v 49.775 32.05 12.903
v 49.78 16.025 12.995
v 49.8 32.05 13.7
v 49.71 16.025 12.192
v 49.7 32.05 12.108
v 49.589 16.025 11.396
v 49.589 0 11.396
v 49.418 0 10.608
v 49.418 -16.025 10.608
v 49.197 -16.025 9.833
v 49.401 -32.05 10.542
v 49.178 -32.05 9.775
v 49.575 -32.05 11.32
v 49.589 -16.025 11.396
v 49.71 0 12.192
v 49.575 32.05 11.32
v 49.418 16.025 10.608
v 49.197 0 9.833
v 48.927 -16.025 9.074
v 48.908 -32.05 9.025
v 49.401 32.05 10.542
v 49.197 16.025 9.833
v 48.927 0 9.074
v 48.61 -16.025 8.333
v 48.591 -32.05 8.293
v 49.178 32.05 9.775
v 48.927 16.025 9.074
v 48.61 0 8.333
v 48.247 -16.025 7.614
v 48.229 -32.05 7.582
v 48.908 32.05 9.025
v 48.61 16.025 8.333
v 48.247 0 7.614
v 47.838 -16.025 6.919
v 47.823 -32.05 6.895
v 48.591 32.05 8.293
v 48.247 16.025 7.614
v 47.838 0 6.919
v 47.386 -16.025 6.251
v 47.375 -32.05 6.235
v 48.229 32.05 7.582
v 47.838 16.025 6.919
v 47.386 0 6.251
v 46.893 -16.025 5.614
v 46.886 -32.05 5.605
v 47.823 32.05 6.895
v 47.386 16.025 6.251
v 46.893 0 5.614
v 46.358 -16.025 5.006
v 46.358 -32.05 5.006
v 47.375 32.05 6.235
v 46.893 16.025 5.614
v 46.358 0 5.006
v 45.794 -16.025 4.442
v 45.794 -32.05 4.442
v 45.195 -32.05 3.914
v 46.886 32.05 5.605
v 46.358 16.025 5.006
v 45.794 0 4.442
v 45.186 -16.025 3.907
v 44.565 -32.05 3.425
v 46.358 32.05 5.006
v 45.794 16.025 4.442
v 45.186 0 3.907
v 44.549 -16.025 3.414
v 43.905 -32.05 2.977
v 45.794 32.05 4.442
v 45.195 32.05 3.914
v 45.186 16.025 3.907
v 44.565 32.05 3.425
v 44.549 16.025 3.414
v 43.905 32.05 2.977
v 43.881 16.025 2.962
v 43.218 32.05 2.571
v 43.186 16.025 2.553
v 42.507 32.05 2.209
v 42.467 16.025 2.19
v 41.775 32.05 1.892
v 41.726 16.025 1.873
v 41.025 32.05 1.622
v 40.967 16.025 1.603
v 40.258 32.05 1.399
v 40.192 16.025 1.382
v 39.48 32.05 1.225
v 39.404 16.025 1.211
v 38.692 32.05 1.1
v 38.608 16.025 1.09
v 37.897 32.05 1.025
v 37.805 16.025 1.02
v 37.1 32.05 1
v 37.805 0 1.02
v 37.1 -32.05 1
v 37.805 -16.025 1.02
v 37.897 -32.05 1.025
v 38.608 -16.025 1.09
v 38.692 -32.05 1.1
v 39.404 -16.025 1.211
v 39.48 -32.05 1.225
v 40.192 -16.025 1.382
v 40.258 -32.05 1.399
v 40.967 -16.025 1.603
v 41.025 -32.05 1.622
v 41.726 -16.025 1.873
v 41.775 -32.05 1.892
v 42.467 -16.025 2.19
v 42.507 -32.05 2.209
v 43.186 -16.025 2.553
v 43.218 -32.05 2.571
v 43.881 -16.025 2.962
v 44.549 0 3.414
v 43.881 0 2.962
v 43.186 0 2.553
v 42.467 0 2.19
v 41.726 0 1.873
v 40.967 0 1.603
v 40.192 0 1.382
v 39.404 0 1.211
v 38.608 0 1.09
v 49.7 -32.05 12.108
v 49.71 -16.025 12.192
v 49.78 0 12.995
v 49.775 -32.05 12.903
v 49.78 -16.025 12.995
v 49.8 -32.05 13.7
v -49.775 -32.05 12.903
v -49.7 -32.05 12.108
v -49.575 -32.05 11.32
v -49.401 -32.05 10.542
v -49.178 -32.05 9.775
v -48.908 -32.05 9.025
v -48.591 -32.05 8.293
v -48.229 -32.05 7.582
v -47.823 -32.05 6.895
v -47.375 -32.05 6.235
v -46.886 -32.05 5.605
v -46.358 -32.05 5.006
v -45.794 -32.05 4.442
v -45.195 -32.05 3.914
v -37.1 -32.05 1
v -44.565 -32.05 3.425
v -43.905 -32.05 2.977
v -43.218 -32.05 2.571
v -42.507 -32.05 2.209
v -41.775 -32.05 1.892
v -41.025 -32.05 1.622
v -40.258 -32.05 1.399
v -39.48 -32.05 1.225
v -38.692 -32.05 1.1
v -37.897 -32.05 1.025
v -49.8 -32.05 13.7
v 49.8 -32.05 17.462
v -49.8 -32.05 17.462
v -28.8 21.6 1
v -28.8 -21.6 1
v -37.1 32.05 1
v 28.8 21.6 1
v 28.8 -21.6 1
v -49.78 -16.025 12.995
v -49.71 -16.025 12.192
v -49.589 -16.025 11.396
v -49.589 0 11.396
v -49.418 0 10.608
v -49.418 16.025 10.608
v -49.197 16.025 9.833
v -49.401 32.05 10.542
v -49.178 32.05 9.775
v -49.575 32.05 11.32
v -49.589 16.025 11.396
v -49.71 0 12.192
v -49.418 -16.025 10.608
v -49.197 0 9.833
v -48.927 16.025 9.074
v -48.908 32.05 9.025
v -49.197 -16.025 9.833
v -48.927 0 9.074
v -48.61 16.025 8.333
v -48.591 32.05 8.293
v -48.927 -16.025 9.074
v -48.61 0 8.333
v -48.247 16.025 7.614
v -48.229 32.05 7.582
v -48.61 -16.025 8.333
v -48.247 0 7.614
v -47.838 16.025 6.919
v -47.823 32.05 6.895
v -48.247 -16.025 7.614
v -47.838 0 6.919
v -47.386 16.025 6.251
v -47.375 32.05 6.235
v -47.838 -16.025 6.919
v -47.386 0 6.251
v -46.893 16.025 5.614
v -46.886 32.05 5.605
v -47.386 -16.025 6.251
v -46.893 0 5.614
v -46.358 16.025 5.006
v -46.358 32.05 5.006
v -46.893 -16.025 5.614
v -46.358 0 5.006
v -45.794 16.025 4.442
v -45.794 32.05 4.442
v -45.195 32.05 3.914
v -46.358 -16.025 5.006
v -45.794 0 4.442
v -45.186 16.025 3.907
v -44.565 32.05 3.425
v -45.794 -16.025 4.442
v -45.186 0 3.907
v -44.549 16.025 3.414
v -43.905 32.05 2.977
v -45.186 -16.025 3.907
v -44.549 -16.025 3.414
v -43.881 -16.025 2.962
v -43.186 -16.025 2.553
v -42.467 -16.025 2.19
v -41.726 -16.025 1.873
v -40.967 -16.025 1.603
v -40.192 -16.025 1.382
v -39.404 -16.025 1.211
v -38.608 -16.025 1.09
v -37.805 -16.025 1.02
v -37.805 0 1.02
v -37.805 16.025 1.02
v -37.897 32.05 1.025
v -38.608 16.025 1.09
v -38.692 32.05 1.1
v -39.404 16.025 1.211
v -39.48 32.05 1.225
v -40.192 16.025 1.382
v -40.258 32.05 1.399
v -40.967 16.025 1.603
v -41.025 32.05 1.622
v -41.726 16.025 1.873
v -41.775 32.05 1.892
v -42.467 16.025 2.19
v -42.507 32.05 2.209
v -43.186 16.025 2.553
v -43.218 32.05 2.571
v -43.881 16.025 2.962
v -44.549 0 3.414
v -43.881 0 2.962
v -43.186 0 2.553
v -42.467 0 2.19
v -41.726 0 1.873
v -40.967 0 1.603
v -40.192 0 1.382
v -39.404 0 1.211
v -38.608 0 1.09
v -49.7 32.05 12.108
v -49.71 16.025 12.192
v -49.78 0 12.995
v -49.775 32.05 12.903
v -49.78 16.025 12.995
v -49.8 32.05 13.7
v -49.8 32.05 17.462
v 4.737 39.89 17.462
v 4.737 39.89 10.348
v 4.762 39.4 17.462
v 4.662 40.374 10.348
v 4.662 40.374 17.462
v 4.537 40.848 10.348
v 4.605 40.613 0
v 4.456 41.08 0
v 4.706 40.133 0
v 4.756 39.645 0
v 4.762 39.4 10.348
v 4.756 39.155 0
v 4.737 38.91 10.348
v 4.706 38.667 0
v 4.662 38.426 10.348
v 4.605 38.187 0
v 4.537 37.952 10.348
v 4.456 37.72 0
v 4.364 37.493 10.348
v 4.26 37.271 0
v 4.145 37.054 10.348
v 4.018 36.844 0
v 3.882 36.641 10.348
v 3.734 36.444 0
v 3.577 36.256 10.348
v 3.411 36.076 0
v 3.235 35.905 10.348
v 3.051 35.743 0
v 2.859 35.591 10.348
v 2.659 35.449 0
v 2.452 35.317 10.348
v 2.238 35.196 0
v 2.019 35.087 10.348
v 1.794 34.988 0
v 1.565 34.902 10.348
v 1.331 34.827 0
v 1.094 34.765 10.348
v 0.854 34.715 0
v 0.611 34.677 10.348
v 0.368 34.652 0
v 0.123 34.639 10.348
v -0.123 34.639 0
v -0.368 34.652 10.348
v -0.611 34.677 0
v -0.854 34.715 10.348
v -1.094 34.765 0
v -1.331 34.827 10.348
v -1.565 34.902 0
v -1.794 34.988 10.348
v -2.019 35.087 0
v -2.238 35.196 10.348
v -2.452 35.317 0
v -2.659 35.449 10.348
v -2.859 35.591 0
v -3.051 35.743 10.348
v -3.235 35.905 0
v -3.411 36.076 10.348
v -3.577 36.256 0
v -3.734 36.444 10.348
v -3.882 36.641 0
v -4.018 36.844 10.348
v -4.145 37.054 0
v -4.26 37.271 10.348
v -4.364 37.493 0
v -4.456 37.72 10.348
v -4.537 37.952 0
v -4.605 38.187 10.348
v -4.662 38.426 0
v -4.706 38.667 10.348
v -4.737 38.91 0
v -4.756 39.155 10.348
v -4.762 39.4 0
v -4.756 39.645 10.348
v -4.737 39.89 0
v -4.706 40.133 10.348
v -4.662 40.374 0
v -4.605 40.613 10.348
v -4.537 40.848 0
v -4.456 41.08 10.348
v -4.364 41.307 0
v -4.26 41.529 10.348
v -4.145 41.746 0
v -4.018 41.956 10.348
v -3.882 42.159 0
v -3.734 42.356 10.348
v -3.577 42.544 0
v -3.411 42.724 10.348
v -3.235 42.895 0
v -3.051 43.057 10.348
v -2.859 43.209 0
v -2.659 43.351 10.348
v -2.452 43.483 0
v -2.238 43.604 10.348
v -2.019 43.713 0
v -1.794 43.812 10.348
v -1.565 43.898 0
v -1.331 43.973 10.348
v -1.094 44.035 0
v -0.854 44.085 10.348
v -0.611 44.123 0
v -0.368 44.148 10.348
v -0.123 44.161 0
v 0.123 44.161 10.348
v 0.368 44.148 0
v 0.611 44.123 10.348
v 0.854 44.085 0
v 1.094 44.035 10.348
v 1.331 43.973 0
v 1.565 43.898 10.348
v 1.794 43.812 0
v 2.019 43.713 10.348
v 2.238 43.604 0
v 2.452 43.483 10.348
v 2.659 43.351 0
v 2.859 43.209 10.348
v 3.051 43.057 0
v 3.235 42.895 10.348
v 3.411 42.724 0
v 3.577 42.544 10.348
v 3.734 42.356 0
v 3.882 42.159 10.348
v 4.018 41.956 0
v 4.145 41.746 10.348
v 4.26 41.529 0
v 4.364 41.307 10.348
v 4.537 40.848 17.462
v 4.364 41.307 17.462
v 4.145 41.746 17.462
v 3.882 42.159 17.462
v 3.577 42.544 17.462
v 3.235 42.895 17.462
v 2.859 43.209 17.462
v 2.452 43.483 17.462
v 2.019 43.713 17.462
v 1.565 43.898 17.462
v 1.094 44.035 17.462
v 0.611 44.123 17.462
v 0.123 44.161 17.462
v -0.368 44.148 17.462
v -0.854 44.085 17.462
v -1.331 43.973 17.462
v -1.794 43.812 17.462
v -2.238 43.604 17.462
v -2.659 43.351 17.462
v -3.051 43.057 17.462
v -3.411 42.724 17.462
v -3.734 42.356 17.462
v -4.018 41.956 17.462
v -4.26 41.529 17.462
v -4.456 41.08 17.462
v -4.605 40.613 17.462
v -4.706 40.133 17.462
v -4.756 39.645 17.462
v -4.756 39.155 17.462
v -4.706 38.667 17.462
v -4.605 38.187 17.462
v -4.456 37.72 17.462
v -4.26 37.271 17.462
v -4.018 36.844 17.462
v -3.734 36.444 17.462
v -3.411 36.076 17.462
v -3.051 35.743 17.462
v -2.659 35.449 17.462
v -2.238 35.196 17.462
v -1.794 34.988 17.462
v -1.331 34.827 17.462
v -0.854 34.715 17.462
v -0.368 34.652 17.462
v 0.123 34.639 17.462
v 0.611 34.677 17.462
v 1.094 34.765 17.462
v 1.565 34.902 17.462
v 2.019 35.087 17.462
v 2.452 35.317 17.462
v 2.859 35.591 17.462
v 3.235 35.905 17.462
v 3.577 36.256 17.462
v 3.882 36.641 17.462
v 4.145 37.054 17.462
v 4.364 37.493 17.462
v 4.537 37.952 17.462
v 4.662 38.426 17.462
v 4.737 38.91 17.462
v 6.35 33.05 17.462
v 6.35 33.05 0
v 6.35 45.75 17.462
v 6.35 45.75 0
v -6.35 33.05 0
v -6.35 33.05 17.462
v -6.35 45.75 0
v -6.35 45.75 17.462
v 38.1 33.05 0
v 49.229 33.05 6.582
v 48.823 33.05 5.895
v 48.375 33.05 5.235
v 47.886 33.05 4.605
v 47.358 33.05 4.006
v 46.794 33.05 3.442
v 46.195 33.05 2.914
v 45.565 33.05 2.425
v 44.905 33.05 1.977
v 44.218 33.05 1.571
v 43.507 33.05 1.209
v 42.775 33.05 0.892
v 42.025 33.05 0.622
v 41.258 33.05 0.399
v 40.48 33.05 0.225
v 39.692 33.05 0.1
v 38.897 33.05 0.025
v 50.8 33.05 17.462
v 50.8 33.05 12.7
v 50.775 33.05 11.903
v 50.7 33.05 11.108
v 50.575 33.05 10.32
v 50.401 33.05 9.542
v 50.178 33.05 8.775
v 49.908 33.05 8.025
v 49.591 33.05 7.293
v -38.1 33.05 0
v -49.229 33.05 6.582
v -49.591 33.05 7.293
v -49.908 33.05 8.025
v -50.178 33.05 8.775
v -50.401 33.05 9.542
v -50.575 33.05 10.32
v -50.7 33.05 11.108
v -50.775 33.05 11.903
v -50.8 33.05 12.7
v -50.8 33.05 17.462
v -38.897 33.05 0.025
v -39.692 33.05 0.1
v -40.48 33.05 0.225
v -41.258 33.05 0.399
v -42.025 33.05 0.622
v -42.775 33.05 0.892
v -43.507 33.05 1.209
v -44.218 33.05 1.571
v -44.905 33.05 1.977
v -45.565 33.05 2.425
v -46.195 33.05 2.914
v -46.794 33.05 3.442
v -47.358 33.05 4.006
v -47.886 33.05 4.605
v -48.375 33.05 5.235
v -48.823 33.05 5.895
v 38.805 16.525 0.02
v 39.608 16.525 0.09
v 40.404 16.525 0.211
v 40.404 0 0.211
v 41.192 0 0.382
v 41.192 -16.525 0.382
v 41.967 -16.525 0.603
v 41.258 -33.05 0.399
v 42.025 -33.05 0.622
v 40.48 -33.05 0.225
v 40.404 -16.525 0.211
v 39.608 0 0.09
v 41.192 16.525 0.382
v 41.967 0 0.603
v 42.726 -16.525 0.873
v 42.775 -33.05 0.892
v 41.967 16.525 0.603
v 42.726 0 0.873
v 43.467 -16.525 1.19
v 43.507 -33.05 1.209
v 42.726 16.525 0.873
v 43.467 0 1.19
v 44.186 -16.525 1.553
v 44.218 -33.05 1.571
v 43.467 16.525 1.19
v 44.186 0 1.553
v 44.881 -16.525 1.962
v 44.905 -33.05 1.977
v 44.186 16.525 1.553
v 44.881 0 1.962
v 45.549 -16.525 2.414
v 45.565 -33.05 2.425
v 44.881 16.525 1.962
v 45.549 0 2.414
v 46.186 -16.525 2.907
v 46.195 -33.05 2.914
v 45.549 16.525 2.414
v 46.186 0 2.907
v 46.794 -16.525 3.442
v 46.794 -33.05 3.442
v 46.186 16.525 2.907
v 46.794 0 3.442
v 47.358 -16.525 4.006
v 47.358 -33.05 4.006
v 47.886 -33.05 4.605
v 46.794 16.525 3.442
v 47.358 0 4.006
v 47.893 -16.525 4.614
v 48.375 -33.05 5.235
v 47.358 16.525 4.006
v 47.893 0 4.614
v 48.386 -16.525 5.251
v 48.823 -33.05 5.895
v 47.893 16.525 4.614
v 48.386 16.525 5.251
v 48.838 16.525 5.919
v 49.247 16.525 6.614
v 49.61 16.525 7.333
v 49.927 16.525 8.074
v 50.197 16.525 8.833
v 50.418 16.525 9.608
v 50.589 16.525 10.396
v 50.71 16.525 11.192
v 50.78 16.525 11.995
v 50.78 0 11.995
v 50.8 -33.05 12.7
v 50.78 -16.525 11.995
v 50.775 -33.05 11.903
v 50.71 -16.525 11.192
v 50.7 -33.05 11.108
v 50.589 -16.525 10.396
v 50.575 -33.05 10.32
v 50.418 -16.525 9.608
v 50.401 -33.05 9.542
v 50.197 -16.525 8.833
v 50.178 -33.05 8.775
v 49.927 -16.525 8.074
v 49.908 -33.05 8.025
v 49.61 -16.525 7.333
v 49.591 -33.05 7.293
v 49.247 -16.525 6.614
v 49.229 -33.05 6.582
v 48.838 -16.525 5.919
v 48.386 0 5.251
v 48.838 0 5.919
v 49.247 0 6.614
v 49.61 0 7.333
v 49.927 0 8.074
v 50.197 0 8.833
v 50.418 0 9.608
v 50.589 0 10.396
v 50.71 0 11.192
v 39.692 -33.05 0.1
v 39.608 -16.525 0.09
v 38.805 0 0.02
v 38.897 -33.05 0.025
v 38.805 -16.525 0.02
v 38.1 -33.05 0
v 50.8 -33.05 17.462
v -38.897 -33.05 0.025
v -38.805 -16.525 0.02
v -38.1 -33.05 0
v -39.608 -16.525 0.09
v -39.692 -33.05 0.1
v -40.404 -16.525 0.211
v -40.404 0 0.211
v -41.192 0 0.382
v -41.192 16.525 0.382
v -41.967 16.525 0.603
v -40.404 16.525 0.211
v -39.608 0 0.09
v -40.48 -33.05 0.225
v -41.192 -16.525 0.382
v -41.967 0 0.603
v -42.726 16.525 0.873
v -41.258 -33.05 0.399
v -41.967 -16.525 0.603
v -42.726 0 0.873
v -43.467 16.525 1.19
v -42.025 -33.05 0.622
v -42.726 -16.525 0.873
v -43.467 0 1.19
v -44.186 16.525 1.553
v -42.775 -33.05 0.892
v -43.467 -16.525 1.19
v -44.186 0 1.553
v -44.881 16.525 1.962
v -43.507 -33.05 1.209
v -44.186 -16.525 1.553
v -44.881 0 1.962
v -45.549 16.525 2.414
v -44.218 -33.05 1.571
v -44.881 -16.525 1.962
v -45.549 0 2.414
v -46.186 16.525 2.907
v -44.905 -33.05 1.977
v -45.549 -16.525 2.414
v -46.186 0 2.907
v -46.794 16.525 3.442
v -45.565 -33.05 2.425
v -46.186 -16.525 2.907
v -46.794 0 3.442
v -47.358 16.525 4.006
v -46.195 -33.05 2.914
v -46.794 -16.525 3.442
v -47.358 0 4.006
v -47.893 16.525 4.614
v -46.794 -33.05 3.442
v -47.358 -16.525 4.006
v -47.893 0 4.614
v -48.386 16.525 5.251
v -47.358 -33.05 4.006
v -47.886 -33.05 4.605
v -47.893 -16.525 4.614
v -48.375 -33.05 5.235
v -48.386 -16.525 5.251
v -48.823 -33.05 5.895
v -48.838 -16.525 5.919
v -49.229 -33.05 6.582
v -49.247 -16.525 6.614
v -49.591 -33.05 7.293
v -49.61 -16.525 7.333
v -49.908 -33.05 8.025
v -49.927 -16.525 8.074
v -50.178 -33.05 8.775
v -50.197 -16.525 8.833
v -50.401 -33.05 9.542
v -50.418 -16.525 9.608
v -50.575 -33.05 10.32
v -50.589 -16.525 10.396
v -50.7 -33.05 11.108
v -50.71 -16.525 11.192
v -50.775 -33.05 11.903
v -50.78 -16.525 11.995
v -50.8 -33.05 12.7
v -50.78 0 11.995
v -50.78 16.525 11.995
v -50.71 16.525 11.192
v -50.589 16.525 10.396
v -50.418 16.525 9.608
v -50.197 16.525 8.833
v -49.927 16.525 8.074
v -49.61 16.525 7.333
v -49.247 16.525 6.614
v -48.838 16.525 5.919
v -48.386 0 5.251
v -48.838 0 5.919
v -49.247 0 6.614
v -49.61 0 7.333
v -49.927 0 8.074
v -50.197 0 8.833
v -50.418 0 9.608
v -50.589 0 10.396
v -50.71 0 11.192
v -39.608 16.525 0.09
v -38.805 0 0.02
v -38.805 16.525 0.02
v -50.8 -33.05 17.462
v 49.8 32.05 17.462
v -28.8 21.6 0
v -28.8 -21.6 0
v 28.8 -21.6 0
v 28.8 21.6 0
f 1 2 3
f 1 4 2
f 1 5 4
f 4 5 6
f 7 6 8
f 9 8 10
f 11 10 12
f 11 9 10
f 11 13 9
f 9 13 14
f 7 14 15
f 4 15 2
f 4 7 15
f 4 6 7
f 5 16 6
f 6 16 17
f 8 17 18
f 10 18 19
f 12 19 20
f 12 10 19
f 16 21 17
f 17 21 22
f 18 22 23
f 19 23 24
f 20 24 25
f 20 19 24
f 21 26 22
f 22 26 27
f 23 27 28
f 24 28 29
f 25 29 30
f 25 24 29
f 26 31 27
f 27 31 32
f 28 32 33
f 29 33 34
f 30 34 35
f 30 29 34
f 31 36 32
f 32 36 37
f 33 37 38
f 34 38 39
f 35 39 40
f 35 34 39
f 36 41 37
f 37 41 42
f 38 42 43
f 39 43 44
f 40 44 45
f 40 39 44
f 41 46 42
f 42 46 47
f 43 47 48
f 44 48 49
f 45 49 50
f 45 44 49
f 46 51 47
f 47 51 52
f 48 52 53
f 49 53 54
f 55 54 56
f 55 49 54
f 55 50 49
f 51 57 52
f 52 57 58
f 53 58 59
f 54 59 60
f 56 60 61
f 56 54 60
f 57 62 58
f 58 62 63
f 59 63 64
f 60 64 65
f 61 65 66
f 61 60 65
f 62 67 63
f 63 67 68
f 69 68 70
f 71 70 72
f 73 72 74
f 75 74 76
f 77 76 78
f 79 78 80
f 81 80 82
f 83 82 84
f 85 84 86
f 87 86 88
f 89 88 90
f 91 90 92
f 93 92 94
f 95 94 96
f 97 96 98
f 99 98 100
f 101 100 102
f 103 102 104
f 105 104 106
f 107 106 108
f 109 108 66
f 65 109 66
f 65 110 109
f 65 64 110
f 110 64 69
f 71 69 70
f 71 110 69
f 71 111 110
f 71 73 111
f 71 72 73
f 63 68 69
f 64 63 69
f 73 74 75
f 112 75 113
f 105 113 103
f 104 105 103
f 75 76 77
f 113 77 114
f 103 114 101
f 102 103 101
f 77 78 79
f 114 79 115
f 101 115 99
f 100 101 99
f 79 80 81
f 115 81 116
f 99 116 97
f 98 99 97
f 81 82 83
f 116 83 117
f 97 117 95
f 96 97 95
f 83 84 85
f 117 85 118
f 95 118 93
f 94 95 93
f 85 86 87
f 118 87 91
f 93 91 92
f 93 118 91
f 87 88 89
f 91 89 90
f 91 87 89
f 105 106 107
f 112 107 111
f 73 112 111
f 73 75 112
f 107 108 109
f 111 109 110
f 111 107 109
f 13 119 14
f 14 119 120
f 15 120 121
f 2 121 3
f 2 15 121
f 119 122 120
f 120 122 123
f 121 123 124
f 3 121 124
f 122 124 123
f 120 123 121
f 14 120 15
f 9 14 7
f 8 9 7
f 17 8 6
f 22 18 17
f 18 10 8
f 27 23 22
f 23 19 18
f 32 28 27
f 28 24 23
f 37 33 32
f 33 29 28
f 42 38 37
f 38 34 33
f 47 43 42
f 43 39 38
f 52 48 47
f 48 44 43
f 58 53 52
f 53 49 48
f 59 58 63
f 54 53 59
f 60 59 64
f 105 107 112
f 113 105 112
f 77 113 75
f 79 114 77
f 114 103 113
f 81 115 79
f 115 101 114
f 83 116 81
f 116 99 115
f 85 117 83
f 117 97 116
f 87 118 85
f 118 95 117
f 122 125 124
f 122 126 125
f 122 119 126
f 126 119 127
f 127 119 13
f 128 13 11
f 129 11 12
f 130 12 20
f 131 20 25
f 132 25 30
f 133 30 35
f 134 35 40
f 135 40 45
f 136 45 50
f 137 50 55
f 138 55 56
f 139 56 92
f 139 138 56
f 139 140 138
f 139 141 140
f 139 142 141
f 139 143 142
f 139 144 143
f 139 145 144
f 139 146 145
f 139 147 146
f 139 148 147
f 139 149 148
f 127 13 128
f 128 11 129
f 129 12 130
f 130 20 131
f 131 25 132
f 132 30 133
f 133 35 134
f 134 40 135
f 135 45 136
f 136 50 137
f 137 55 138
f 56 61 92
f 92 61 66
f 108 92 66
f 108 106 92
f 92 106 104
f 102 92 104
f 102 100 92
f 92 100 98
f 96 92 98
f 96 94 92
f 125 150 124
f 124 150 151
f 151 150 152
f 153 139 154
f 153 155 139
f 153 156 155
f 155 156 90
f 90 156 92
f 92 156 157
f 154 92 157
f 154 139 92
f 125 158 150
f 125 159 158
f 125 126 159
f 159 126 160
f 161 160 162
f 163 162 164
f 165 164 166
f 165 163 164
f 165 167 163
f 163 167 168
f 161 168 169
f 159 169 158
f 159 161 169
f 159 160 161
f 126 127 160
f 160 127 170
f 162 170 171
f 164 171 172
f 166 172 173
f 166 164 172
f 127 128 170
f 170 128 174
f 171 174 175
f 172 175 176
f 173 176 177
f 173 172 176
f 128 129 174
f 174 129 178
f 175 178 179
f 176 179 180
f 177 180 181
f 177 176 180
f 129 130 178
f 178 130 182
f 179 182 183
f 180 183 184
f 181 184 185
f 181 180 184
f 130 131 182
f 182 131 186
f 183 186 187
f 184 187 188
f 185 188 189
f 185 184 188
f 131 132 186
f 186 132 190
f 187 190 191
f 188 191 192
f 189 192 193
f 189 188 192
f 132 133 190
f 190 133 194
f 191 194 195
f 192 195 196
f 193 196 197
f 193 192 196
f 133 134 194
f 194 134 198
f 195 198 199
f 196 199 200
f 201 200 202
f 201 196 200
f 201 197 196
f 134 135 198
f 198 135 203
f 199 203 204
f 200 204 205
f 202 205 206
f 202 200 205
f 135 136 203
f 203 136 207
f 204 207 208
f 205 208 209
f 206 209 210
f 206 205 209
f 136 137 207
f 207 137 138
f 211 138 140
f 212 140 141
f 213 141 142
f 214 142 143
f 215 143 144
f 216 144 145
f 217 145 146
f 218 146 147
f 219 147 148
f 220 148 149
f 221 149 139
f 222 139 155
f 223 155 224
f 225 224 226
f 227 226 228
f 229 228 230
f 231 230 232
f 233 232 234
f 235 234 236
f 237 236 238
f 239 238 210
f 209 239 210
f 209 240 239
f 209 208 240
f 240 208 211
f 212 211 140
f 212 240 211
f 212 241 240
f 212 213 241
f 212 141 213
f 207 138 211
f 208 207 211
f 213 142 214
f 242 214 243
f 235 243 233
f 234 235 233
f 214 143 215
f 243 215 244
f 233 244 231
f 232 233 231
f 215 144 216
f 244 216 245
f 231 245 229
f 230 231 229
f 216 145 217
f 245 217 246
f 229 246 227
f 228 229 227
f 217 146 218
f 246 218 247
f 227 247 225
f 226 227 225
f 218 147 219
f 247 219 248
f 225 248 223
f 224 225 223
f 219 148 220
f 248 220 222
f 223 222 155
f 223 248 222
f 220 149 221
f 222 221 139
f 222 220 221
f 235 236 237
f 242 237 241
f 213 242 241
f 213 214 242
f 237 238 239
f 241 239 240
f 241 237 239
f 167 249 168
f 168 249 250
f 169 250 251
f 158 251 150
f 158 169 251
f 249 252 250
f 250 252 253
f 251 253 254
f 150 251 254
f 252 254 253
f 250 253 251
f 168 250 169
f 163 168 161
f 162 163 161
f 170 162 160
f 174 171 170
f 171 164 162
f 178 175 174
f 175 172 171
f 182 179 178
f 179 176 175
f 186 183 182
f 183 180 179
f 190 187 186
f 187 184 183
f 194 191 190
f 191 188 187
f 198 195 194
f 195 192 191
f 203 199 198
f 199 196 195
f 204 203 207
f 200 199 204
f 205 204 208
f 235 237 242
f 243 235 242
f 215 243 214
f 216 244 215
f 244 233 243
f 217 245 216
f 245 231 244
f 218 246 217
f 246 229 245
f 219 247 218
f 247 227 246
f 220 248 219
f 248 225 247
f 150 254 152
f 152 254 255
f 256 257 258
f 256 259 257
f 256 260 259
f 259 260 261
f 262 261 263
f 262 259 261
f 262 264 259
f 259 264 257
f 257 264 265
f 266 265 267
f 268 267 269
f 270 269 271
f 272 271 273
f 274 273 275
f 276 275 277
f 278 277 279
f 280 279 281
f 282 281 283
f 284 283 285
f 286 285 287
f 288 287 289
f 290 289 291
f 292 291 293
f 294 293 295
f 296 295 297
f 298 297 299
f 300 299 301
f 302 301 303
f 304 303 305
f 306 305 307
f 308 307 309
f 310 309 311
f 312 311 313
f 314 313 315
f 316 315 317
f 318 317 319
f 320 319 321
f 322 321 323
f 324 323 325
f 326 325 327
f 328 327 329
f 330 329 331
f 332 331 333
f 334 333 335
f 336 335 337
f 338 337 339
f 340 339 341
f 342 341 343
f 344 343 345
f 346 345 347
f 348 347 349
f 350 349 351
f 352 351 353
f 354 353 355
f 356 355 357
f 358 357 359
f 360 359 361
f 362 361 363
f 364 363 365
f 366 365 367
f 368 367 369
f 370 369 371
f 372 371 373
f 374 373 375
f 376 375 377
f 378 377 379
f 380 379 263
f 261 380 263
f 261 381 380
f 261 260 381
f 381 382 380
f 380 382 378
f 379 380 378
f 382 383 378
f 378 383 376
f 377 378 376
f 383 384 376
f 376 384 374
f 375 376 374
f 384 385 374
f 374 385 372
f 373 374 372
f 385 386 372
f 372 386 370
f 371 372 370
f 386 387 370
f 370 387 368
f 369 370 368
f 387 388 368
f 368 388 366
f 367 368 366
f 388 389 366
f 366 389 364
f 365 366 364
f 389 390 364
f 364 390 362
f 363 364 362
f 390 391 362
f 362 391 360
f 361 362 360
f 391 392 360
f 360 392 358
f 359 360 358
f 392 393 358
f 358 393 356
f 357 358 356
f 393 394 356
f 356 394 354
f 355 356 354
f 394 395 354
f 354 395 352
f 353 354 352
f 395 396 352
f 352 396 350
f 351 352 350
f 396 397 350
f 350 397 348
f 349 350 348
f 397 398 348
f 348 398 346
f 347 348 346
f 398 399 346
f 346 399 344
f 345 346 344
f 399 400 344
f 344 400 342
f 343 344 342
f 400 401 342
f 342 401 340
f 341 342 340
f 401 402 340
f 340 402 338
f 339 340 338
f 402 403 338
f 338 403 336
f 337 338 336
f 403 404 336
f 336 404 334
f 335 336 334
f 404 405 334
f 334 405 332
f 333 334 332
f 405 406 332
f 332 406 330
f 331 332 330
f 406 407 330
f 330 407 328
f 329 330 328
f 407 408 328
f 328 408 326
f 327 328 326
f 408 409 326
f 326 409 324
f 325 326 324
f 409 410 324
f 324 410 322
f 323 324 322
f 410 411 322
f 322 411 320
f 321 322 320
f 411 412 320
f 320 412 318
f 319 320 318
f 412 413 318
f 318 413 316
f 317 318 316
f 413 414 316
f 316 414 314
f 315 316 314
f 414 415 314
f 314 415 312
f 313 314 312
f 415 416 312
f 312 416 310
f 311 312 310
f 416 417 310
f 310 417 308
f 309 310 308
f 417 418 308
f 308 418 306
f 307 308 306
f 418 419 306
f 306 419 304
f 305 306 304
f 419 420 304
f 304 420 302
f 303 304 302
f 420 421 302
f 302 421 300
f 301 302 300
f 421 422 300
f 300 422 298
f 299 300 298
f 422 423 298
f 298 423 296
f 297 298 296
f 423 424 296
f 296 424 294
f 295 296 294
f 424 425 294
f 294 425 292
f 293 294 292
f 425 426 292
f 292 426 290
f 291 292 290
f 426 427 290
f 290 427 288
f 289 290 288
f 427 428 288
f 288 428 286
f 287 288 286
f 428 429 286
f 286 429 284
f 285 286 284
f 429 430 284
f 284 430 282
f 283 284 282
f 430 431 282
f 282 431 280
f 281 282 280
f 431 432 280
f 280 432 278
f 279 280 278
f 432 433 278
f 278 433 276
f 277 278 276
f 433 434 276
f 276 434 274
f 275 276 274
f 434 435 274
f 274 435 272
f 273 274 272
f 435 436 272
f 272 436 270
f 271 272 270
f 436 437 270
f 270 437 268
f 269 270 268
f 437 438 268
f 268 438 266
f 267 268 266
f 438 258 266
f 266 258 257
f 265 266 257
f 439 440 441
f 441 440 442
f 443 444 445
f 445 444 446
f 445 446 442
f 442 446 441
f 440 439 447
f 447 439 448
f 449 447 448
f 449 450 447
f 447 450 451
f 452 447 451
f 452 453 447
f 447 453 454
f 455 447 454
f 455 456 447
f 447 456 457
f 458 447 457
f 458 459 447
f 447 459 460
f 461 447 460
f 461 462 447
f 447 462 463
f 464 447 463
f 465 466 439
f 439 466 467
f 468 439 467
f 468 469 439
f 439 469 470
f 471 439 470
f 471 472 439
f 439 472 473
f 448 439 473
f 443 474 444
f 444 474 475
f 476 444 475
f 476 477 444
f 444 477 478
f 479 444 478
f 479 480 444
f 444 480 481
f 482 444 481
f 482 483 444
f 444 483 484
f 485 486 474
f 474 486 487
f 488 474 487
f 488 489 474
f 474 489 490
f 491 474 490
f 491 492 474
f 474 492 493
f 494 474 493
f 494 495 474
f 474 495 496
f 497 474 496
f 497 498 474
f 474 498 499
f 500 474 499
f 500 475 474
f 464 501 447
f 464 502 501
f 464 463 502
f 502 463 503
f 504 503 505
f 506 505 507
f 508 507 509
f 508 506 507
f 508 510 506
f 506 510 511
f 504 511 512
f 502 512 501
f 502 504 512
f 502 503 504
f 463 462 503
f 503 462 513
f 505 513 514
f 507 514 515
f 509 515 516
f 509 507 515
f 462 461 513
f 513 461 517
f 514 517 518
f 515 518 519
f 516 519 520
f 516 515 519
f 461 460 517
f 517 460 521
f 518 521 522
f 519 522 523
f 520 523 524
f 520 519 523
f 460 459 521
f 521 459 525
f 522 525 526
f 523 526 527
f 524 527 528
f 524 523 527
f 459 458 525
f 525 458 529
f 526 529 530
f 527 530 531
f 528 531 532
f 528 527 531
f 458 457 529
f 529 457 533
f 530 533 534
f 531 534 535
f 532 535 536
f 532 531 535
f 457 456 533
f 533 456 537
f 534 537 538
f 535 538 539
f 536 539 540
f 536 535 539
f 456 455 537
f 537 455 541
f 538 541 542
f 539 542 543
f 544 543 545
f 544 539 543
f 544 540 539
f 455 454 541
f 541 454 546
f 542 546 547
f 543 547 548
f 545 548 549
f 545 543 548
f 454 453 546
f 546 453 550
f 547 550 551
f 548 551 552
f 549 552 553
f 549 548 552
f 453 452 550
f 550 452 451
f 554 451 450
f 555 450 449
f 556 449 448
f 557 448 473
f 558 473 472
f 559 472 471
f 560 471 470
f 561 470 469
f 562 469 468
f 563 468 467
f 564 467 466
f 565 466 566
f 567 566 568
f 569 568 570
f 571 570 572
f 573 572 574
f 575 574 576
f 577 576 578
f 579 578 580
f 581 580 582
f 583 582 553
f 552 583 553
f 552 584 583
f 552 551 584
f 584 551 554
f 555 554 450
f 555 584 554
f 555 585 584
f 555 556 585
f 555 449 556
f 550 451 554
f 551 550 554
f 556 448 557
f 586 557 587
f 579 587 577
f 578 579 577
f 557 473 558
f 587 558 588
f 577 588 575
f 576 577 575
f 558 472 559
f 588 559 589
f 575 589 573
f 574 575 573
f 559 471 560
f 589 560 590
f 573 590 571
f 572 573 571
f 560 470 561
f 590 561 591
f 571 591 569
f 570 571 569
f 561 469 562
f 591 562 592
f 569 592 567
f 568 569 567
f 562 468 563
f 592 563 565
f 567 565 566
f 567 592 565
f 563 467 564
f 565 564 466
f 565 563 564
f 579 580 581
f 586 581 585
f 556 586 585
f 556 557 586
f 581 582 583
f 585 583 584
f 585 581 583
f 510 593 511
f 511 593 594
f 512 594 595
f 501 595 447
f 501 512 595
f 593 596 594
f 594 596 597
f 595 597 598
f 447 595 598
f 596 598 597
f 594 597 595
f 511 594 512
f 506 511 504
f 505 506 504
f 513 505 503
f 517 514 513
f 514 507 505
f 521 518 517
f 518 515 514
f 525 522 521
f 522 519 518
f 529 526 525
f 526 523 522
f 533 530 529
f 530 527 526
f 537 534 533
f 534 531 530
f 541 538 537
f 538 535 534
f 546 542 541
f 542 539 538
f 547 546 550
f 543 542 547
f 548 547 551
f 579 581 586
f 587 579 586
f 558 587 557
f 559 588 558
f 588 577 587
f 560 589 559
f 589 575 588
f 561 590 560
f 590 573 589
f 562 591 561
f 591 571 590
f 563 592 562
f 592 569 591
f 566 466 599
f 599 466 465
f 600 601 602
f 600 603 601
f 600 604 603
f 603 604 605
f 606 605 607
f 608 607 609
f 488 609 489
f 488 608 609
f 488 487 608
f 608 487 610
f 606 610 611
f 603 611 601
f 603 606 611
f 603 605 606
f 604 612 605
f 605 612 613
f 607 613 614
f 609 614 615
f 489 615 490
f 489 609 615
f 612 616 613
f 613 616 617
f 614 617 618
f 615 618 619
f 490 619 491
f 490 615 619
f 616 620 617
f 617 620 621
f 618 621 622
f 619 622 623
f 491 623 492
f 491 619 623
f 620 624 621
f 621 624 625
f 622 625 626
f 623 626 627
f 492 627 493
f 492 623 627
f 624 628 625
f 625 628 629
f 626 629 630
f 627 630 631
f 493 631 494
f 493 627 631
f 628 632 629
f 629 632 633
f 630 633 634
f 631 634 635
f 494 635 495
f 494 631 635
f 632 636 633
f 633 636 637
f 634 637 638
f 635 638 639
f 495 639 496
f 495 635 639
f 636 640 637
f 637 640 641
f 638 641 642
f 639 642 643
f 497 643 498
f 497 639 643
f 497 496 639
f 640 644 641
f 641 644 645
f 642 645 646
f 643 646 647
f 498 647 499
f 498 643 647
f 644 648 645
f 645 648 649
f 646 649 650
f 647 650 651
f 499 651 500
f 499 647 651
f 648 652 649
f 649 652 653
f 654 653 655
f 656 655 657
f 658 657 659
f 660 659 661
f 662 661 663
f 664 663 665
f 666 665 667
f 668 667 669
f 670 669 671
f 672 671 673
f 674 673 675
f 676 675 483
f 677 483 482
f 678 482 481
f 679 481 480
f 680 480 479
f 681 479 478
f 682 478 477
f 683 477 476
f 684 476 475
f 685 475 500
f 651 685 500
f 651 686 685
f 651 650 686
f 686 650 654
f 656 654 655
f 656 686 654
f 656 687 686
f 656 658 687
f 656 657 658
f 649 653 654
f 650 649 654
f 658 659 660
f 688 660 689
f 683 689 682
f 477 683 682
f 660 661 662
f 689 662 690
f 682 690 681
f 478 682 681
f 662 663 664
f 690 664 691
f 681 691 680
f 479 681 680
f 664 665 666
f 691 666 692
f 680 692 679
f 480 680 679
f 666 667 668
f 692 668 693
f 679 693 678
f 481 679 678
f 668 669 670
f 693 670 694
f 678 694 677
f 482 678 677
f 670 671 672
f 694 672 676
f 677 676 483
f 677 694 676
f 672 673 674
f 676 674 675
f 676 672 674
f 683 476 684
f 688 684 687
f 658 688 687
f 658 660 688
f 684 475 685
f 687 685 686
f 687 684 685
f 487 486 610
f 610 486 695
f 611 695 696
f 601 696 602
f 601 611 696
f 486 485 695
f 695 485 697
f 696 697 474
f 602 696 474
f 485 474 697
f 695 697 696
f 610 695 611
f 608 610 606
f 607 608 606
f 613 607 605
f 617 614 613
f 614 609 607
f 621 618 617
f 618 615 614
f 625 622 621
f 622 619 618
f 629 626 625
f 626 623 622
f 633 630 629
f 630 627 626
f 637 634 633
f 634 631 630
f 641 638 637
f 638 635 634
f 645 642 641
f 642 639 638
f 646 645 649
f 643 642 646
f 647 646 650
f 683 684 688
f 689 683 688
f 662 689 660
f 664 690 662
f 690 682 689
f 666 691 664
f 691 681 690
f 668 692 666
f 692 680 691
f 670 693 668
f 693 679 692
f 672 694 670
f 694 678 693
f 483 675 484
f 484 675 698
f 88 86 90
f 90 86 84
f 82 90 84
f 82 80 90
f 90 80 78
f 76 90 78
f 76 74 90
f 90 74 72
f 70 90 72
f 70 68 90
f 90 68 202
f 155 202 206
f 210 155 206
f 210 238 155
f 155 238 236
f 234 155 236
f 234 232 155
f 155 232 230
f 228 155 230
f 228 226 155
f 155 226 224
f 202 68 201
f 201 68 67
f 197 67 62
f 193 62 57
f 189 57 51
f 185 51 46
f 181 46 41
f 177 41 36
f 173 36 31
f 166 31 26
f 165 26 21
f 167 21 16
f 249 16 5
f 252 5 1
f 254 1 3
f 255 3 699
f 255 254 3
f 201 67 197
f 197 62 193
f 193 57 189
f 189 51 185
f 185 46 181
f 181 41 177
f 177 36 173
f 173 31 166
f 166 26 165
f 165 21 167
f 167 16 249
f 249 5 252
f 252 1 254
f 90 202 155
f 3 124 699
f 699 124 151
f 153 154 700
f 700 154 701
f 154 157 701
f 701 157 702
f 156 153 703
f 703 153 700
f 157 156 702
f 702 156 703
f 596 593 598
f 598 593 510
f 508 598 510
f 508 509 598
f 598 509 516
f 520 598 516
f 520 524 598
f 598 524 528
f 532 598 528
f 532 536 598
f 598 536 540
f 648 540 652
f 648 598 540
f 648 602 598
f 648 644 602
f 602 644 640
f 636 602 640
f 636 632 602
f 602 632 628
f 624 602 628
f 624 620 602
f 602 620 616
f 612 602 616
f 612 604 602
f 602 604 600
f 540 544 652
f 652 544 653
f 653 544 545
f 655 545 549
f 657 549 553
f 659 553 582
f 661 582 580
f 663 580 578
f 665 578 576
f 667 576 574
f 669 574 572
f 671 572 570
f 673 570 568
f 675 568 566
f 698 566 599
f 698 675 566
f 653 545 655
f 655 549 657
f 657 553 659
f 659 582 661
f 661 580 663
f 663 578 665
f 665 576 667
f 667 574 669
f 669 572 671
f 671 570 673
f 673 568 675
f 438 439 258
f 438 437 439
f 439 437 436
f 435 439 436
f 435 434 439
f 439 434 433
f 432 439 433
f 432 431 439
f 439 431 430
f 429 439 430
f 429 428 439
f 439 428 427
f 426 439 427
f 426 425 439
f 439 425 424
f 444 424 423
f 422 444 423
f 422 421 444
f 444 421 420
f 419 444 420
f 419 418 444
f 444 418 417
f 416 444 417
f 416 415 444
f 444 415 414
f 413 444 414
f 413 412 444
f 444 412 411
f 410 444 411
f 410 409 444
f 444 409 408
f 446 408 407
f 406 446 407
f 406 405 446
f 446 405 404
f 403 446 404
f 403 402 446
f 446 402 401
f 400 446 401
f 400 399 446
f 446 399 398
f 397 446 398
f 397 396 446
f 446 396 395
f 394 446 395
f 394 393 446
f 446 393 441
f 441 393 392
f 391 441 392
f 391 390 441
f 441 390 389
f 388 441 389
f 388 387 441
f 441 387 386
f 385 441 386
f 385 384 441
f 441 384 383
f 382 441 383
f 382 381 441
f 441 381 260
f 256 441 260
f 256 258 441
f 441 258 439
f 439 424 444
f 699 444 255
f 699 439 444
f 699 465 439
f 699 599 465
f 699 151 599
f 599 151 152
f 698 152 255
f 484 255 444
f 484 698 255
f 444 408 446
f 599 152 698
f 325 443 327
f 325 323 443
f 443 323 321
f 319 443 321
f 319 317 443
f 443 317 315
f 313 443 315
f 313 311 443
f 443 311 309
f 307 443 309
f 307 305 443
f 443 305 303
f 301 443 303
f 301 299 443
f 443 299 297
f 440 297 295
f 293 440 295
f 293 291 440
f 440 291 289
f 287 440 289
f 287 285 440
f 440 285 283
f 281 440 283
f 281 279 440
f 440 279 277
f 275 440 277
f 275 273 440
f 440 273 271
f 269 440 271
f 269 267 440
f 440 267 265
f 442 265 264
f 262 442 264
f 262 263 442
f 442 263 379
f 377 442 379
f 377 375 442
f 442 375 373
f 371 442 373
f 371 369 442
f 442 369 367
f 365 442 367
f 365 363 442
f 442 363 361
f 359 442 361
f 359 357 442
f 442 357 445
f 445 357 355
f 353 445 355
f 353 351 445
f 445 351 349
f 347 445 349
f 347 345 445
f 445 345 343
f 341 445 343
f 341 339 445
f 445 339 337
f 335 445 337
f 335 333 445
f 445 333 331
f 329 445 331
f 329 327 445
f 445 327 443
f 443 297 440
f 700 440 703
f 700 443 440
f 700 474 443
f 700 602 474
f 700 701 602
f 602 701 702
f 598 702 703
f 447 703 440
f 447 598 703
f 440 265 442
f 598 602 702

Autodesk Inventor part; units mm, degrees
ref_plane "YZ Plane" through (0, 0, 0) normal (1, 0, 0) x (0, 1, 0)
ref_plane "XZ Plane" through (0, 0, 0) normal (0, 1, 0) x (-1, 0, 0)
ref_plane "XY Plane" through (0, 0, 0) normal (0, 0, 1) x (1, 0, 0)
sketch "Sketch1" plane through (0, 0, 0) normal (0, 0, 1) x (1, 0, 0)
  line L0 (28.8, -21.6) -> (-28.8, -21.6)
  line L1 (-28.8, -21.6) -> (-28.8, 21.6)
  line L2 (-28.8, 21.6) -> (28.8, 21.6)
  line L3 (28.8, 21.6) -> (28.8, -21.6)
  line L4 (28.8, -21.6) -> (-28.8, 21.6) construction
  line L5 (-28.8, -21.6) -> (28.8, 21.6) construction
  line L6 (-34.3, -26.7) -> (34.3, -26.7)
  line L7 (34.3, -26.7) -> (34.3, 26.7)
  line L8 (34.3, 26.7) -> (-34.3, 26.7)
  line L9 (-34.3, 26.7) -> (-34.3, -26.7)
  line L10 (-34.3, -26.7) -> (34.3, 26.7) construction
  line L11 (34.3, -26.7) -> (-34.3, 26.7) construction
  line L12 (-40.65, 33.05) -> (40.65, 33.05)
  line L13 (40.65, 33.05) -> (40.65, -33.05)
  line L14 (40.65, -33.05) -> (-40.65, -33.05)
  line L15 (-40.65, -33.05) -> (-40.65, 33.05)
  line L16 (-50.8, -33.05) -> (50.8, -33.05)
  line L17 (50.8, -33.05) -> (50.8, 33.05)
  line L18 (50.8, 33.05) -> (-50.8, 33.05)
  line L19 (-50.8, 33.05) -> (-50.8, -33.05)
  line L20 (-50.8, -33.05) -> (50.8, 33.05) construction
  line L21 (50.8, -33.05) -> (-50.8, 33.05) construction
  point P0 (0, 0)
  dimension "d0" = 43.2
  dimension "d1" = 57.6
  dimension "d2" = 68.6
  dimension "d3" = 53.4
  dimension "d4" = 6.35
  dimension "d7" = 101.6
  dimension "d8" = 66.1
extrude "Extrusion1" add sketch "Sketch1" along normal blind 17.4625 contours L9 L8 L7 L6 | L12 L13 L14 L15 | L15 L16 L19 L18 | L18 L17 L16 L13
shell "Shell1" thickness 1 removed faces 5 at (-43.4667, 7.2, 17.4625) at (-28.8, -7.2, 5.8208) at (-9.6, 21.6, 5.8208) at (28.8, 7.2, 5.8208) at (9.6, -21.6, 5.8208)
fillet "Fillet1" radius 12.7 2 edges at (-50.8, 0, 0) (50.8, 0, 0)
sketch "Sketch2" plane through (-50.8, 33.05, 17.4625) normal (0, 1, 0) x (1, 0, 0)
  arc A0 (101.6, 4.7625) -> (88.9, 17.4625) centre (88.9, 4.7625) ccw projected
  line L0 (88.9, 17.4625) -> (12.7, 17.4625) projected
  arc A1 (12.7, 17.4625) -> (0, 4.7625) centre (12.7, 4.7625) ccw projected
  line L1 (0, 4.7625) -> (0, 0) projected
  line L2 (101.6, 0) -> (0, 0) projected
  line L3 (101.6, 4.7625) -> (101.6, 0) projected
  line L4 (101.6, 0) -> (0, 0) construction
  line L5 (50.8, 0) -> (50.8, 17.4625) construction
  line L6 (57.15, 17.4625) -> (44.45, 17.4625)
  line L7 (44.45, 17.4625) -> (44.45, 0)
  line L8 (44.45, 0) -> (57.15, 0)
  line L9 (57.15, 0) -> (57.15, 17.4625)
  dimension "d11" = 12.7
extrude "Extrusion2" add sketch "Sketch2" along normal blind 12.7 contours L9 L2 L7 L0
sketch "Sketch3" plane through (0, 0, 0) normal (0, 0, -1) x (-1, 0, 0)
  line L0 (-38.1, -33.05) -> (-38.1, 33.05) projected
  line L1 (38.1, -33.05) -> (-38.1, -33.05) projected
  line L2 (38.1, 33.05) -> (38.1, -33.05) projected
  line L3 (6.35, 33.05) -> (38.1, 33.05) projected
  line L4 (6.35, 33.05) -> (6.35, 45.75) projected
  line L5 (-6.35, 45.75) -> (6.35, 45.75) projected
  line L6 (-6.35, 33.05) -> (-6.35, 45.75) projected
  line L7 (-38.1, 33.05) -> (-6.35, 33.05) projected
  line L8 (28.8, 21.6) -> (28.8, -21.6) projected
  line L9 (28.8, -21.6) -> (-28.8, -21.6) projected
  line L10 (-28.8, -21.6) -> (-28.8, 21.6) projected
  line L11 (-28.8, 21.6) -> (28.8, 21.6) projected
  line L12 (-6.35, 45.75) -> (6.35, 33.05) construction
  line L13 (6.35, 33.05) -> (6.35, 45.75) construction
  line L14 (6.35, 45.75) -> (-6.35, 33.05) construction
  point P0 (0, 0)
  point P1 (0, 39.4)
hole "Hole1" at (0, 39.4, 0) direction (0, 0, 1) diameter 9.525 end through all
fillet "Fillet2" radius 12.7 2 edges at (-49.8, 0, 1) (49.8, 0, 1)
equation "\"d8\" = 2 * d4 + d3"
properties part number "Back"
